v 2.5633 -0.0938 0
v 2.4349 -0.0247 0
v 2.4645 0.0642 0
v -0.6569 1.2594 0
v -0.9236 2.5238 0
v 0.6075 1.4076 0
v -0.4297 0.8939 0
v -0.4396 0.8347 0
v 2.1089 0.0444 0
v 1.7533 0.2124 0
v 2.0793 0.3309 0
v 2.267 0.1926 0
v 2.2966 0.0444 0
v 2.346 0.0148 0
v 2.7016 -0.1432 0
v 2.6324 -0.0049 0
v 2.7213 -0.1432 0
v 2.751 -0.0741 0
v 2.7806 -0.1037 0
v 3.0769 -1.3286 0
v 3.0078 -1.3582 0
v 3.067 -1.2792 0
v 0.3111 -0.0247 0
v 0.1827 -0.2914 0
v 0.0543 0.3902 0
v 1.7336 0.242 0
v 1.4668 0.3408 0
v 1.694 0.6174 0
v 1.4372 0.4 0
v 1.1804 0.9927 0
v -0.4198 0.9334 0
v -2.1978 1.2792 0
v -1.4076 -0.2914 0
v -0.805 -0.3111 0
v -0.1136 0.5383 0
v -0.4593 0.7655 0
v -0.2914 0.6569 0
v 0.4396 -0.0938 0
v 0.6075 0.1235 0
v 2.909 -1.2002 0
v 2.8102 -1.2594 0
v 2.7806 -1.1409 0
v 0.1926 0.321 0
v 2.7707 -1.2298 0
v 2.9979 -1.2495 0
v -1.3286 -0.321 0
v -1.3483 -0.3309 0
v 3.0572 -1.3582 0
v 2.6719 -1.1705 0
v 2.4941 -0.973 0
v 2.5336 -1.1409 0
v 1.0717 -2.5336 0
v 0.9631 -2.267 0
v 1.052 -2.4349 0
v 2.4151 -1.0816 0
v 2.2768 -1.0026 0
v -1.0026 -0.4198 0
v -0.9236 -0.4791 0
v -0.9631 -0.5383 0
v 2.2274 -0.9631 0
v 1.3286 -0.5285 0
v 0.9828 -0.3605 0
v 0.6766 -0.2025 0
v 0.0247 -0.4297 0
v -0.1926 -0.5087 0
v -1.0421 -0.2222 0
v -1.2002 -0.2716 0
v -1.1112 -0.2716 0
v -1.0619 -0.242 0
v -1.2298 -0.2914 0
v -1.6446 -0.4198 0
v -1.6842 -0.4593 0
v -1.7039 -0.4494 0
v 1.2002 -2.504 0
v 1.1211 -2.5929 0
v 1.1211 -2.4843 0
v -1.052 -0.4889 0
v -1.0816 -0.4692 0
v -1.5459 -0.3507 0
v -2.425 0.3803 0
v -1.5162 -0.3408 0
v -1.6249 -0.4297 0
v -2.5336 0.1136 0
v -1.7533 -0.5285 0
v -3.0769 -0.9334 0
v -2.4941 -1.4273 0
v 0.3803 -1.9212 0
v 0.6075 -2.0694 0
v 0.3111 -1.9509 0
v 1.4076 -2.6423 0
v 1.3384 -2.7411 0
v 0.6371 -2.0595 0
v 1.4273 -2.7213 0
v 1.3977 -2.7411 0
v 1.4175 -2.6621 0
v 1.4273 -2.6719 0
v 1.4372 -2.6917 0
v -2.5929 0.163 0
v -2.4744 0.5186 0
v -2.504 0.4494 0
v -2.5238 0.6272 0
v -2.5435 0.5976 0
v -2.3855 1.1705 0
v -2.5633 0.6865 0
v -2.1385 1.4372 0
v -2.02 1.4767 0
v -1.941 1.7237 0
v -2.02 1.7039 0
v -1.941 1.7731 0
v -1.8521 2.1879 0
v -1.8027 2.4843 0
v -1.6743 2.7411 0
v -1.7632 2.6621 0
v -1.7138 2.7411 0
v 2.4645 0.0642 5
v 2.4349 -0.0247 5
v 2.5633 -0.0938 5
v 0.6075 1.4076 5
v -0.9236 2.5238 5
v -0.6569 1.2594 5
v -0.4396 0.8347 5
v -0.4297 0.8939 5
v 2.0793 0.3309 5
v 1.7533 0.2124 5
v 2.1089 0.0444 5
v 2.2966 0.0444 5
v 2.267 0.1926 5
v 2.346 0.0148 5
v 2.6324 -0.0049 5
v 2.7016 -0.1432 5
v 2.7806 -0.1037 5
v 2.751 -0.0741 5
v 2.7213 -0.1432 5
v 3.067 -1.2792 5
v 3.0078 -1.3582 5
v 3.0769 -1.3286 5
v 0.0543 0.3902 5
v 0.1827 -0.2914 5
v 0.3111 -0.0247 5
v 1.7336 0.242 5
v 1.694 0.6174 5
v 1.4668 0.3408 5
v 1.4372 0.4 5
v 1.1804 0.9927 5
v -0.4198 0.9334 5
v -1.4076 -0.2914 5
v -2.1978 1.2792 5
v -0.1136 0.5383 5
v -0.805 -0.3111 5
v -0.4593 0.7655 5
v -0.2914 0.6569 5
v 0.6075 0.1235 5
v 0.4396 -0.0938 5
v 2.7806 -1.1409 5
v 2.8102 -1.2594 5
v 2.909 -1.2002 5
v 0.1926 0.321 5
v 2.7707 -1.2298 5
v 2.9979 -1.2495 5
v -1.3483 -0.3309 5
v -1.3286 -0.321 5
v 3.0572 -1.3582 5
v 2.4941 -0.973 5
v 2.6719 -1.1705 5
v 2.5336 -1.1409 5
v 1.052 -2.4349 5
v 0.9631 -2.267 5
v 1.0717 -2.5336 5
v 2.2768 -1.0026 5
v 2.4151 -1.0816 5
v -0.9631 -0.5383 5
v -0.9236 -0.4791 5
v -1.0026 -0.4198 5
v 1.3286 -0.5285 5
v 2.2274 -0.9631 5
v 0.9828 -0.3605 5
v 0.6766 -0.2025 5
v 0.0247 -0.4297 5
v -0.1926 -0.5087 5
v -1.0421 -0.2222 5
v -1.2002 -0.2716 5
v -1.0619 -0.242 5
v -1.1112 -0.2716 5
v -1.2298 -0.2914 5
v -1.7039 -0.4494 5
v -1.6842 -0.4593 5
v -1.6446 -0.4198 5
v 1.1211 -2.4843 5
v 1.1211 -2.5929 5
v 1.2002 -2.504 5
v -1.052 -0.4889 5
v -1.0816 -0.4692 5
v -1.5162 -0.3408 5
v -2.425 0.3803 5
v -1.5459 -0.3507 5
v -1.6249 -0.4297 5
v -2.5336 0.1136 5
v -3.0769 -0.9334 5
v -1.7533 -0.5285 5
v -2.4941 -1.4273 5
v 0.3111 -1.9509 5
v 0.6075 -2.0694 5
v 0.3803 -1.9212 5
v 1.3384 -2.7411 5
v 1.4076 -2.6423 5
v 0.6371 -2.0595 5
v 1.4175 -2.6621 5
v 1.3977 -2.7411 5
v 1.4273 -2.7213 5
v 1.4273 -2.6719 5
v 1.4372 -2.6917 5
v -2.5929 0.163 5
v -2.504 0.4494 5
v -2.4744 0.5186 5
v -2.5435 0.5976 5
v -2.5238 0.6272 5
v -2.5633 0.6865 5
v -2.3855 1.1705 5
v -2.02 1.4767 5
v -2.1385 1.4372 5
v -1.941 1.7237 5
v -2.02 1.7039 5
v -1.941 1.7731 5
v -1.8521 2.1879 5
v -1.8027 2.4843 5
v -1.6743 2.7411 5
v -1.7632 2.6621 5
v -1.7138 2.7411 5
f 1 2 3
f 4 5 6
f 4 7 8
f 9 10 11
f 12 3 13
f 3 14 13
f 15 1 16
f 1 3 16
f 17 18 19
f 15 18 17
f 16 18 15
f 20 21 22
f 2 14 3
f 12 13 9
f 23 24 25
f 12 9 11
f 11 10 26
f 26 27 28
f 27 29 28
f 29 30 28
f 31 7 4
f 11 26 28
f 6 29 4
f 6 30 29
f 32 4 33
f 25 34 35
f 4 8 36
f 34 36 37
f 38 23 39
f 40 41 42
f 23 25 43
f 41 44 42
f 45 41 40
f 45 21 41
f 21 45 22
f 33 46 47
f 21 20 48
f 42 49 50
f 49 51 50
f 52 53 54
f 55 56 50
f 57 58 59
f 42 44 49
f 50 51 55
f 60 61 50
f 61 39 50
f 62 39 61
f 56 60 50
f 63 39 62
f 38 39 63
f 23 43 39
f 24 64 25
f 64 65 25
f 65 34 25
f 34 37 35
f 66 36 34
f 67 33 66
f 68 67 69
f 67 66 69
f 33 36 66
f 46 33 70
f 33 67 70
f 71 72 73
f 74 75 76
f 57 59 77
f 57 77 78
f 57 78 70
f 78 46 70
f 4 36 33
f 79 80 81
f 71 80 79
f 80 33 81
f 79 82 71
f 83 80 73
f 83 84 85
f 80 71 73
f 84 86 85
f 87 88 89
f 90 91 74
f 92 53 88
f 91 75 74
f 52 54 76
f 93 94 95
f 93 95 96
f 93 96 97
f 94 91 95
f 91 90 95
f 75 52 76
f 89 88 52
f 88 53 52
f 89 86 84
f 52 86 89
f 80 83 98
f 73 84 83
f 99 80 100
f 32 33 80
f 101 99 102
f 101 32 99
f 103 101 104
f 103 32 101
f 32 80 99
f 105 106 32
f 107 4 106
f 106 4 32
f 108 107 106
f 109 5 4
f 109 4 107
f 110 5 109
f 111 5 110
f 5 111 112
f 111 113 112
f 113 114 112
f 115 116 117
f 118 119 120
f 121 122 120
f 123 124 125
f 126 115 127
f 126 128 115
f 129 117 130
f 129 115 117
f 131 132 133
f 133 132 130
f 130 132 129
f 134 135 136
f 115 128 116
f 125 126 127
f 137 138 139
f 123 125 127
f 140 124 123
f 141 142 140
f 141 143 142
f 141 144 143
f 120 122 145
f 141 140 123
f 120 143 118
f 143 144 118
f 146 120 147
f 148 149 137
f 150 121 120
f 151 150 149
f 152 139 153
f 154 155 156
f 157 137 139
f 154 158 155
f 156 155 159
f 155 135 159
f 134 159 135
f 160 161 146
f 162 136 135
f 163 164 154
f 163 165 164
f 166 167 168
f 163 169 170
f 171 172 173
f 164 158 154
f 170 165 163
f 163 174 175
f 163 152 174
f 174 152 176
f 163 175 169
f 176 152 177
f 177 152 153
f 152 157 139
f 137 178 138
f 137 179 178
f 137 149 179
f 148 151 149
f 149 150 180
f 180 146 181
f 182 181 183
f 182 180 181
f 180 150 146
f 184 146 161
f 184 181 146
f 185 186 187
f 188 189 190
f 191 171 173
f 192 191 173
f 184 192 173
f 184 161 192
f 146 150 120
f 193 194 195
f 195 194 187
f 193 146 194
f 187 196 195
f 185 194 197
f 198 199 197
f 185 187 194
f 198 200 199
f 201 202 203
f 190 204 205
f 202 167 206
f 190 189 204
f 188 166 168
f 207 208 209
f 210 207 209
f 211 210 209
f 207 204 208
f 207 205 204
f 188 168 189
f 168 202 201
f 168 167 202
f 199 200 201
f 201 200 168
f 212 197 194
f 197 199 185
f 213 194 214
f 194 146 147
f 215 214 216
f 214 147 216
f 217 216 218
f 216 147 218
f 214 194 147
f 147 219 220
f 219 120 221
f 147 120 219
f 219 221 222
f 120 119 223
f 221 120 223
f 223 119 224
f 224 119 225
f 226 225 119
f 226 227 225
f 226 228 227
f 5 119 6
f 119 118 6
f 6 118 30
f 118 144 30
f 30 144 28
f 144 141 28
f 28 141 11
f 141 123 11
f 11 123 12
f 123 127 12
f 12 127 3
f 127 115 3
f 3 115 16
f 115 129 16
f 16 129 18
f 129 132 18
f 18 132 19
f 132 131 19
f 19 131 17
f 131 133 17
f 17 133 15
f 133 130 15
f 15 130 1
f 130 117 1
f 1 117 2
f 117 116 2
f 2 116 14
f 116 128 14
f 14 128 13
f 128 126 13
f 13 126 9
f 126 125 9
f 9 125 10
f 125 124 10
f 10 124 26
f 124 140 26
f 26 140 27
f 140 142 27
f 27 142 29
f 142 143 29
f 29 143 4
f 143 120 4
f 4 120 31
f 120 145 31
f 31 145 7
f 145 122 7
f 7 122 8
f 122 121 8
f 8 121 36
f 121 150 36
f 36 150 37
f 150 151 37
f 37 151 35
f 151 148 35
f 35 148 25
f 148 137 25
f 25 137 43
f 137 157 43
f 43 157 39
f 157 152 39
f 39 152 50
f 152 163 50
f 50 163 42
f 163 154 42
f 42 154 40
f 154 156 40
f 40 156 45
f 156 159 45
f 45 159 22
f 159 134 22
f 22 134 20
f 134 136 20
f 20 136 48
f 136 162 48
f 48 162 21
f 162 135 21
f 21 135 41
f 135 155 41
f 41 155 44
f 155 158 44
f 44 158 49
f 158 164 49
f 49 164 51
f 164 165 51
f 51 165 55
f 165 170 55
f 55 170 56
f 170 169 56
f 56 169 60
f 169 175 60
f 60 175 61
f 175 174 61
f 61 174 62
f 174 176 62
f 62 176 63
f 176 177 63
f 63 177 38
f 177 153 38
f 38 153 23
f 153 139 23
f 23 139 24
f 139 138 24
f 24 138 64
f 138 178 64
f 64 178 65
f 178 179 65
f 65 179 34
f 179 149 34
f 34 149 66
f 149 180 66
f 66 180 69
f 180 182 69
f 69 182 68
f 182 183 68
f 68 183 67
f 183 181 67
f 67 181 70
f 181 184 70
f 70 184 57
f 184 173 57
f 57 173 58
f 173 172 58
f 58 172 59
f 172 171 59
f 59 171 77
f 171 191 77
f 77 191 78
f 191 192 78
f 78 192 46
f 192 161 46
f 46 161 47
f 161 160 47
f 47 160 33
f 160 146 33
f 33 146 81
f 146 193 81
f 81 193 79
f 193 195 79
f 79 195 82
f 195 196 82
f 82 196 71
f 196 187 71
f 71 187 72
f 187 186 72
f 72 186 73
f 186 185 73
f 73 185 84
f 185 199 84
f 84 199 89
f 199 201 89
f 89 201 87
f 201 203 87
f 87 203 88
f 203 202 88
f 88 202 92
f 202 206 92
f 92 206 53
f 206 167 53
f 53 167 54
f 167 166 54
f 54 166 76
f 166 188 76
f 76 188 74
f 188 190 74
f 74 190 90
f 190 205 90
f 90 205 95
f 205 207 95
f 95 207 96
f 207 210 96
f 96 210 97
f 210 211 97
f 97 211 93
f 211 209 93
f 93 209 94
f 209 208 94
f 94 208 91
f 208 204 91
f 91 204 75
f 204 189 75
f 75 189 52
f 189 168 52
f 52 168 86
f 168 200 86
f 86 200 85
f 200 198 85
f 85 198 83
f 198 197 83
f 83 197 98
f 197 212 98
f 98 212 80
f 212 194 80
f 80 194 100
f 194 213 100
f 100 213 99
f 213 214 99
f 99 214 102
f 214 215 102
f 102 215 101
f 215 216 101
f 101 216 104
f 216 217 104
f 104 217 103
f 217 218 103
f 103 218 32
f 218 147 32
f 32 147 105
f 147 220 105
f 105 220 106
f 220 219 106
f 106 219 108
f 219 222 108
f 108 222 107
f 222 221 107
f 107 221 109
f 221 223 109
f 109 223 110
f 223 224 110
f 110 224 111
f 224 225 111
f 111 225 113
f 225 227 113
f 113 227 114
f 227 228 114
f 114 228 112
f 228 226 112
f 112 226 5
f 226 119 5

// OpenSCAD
// Module names are of the form poly_<inkscape-path-id>().  As a result,
// you can associate a polygon in this OpenSCAD program with the corresponding
// SVG element in the Inkscape document by looking for the XML element with
// the attribute id="inkscape-path-id".

// fudge value is used to ensure that subtracted solids are a tad taller
// in the z dimension than the polygon being subtracted from.  This helps
// keep the resulting .stl file manifold.
fudge = 0.1;

module poly_path4327(h)
{
  scale([25.4/90, -25.4/90, 1]) union()
  {
    linear_extrude(height=h)
      polygon([[-8.977500,-0.402500],[-9.187500,-0.577500],[-8.592500,-1.347500],[-8.872500,-1.592500],[-8.767500,-1.837500],[-9.012500,-2.117500],[-8.942500,-2.222500],[-9.082500,-2.432500],[-8.452500,-4.147500],[-7.787500,-4.532500],[-7.577500,-5.092500],[-7.157500,-5.232500],[-7.157500,-6.037500],[-6.877500,-6.107500],[-6.877500,-6.282500],[-6.562500,-7.752500],[-6.387500,-8.802500],[-6.247500,-9.432500],[-6.072500,-9.712500],[-5.932500,-9.712500],[-3.272500,-8.942500],[2.152500,-4.987500],[4.182500,-3.517500],[6.002500,-2.187500],[7.367500,-1.172500],[8.032500,-0.682500],[8.732500,-0.227500],[9.327500,0.017500],[9.747500,0.262500],[9.852500,0.367500],[9.747500,0.437500],[9.642500,0.507500],[9.572500,0.507500],[9.082500,0.332500],[8.627500,0.087500],[8.312500,-0.052500],[8.137500,-0.157500],[7.472500,-0.157500],[6.212500,-0.752500],[6.142500,-0.857500],[5.197500,-1.207500],[5.092500,-1.417500],[-2.327500,-4.462500],[-1.487500,-3.307500],[-1.522500,-3.167500],[-1.557500,-2.957500],[-1.627500,-2.712500],[-1.032500,-2.327500],[-0.402500,-1.907500],[0.192500,-1.382500],[0.682500,-1.137500],[2.152500,-0.437500],[8.837500,3.447500],[9.852500,4.042500],[10.307500,4.252500],[10.622500,4.427500],[10.867500,4.532500],[10.902500,4.707500],[10.832500,4.812500],[10.657500,4.812500],[9.957500,4.462500],[9.817500,4.357500],[9.642500,4.252500],[9.467500,4.147500],[8.977500,4.042500],[8.557500,3.832500],[8.067500,3.552500],[7.892500,3.412500],[4.707500,1.872500],[3.482500,1.277500],[2.397500,0.717500],[1.557500,0.332500],[1.102500,0.087500],[0.647500,1.032500],[0.087500,1.522500],[-0.682500,1.802500],[-2.852500,1.102500],[-3.692500,0.787500],[-3.762500,0.857500],[-3.937500,0.962500],[-4.252500,0.962500],[-4.357500,1.032500],[-3.552500,1.487500],[-3.272500,1.697500],[-3.412500,1.907500],[-3.727500,1.732500],[-3.832500,1.662500],[-4.707500,1.137500],[-4.777500,1.172500],[-4.987500,1.032500],[-5.372500,1.207500],[-5.477500,1.242500],[-5.757500,1.522500],[-5.827500,1.487500],[-5.967500,1.627500],[-6.037500,1.592500],[-6.212500,1.872500],[1.102500,6.912500],[1.347500,6.807500],[2.152500,7.332500],[2.257500,7.297500],[3.412500,8.032500],[3.727500,8.627500],[3.972500,8.802500],[4.252500,8.872500],[4.987500,9.362500],[5.022500,9.432500],[5.057500,9.467500],[5.092500,9.537500],[5.057500,9.642500],[4.952500,9.712500],[4.742500,9.712500],[3.972500,9.187500],[3.797500,8.977500],[-8.837500,5.057500],[-10.902500,3.307500],[-8.977500,-0.402500]]);
  }
}

poly_path4327(5);
